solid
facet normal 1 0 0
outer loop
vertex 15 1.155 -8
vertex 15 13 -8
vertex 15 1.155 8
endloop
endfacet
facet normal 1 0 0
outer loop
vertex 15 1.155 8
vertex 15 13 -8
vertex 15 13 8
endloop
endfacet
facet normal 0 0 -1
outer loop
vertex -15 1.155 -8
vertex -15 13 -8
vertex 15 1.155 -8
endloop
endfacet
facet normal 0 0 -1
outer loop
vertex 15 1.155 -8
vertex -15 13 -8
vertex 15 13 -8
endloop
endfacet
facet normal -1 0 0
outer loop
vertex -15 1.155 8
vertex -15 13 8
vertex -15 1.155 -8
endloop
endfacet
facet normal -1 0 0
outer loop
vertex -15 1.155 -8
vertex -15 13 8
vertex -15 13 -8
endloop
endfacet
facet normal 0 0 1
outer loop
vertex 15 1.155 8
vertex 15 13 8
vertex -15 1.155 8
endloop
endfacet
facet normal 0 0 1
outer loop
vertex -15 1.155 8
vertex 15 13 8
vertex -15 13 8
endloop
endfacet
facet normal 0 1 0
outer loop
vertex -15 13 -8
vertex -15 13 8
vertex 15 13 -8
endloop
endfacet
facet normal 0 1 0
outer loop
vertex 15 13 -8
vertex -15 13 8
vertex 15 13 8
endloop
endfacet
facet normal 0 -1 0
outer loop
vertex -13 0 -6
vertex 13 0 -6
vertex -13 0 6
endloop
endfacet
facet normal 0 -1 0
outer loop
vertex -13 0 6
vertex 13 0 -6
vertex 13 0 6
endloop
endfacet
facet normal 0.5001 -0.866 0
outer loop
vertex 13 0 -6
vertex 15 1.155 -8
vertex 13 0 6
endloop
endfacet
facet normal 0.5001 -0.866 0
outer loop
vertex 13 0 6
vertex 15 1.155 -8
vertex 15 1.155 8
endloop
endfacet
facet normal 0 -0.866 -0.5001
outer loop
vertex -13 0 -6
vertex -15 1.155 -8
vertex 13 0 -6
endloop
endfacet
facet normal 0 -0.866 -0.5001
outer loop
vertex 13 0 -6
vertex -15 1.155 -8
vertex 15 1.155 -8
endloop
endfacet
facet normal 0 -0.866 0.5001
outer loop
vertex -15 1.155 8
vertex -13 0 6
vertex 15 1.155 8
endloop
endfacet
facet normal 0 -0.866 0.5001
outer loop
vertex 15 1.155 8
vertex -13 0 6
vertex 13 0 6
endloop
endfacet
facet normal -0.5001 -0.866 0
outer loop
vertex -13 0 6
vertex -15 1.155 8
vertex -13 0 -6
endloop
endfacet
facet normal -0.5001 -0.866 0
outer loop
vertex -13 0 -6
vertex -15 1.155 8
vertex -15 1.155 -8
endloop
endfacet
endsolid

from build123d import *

# Parameters (mm, degrees)
SKETCH_1_W      = 30
SKETCH_1_H      = 16
EXTRUDE_1_DEPTH = 13
CHAMFER_1_SIZE  = 2
CHAMFER_1_SIZE2 = 1.154700538


with BuildPart() as part:
    # Эскиз1 → Бобышка-Вытянуть1 (new body)
    with BuildSketch(Plane(origin=(0, 0, 0), x_dir=(1, 0, 0), z_dir=(0, 1, 0))):
        Rectangle(SKETCH_1_W, SKETCH_1_H)
    extrude(amount=EXTRUDE_1_DEPTH)

    # Фаска1
    chamfer_1_edges = [part.edges().sort_by_distance(p)[0] for p in [
        (0, 0, 8),
        (-15, 0, 0),
        (0, 0, -8),
        (15, 0, 0),
    ]]
    chamfer_1_side = [part.faces().sort_by_distance(p)[0] for p in [
        (0, 0, 0),
    ]]
    chamfer(chamfer_1_edges, length=CHAMFER_1_SIZE, length2=CHAMFER_1_SIZE2, reference=chamfer_1_side[0])


solid = part.part
